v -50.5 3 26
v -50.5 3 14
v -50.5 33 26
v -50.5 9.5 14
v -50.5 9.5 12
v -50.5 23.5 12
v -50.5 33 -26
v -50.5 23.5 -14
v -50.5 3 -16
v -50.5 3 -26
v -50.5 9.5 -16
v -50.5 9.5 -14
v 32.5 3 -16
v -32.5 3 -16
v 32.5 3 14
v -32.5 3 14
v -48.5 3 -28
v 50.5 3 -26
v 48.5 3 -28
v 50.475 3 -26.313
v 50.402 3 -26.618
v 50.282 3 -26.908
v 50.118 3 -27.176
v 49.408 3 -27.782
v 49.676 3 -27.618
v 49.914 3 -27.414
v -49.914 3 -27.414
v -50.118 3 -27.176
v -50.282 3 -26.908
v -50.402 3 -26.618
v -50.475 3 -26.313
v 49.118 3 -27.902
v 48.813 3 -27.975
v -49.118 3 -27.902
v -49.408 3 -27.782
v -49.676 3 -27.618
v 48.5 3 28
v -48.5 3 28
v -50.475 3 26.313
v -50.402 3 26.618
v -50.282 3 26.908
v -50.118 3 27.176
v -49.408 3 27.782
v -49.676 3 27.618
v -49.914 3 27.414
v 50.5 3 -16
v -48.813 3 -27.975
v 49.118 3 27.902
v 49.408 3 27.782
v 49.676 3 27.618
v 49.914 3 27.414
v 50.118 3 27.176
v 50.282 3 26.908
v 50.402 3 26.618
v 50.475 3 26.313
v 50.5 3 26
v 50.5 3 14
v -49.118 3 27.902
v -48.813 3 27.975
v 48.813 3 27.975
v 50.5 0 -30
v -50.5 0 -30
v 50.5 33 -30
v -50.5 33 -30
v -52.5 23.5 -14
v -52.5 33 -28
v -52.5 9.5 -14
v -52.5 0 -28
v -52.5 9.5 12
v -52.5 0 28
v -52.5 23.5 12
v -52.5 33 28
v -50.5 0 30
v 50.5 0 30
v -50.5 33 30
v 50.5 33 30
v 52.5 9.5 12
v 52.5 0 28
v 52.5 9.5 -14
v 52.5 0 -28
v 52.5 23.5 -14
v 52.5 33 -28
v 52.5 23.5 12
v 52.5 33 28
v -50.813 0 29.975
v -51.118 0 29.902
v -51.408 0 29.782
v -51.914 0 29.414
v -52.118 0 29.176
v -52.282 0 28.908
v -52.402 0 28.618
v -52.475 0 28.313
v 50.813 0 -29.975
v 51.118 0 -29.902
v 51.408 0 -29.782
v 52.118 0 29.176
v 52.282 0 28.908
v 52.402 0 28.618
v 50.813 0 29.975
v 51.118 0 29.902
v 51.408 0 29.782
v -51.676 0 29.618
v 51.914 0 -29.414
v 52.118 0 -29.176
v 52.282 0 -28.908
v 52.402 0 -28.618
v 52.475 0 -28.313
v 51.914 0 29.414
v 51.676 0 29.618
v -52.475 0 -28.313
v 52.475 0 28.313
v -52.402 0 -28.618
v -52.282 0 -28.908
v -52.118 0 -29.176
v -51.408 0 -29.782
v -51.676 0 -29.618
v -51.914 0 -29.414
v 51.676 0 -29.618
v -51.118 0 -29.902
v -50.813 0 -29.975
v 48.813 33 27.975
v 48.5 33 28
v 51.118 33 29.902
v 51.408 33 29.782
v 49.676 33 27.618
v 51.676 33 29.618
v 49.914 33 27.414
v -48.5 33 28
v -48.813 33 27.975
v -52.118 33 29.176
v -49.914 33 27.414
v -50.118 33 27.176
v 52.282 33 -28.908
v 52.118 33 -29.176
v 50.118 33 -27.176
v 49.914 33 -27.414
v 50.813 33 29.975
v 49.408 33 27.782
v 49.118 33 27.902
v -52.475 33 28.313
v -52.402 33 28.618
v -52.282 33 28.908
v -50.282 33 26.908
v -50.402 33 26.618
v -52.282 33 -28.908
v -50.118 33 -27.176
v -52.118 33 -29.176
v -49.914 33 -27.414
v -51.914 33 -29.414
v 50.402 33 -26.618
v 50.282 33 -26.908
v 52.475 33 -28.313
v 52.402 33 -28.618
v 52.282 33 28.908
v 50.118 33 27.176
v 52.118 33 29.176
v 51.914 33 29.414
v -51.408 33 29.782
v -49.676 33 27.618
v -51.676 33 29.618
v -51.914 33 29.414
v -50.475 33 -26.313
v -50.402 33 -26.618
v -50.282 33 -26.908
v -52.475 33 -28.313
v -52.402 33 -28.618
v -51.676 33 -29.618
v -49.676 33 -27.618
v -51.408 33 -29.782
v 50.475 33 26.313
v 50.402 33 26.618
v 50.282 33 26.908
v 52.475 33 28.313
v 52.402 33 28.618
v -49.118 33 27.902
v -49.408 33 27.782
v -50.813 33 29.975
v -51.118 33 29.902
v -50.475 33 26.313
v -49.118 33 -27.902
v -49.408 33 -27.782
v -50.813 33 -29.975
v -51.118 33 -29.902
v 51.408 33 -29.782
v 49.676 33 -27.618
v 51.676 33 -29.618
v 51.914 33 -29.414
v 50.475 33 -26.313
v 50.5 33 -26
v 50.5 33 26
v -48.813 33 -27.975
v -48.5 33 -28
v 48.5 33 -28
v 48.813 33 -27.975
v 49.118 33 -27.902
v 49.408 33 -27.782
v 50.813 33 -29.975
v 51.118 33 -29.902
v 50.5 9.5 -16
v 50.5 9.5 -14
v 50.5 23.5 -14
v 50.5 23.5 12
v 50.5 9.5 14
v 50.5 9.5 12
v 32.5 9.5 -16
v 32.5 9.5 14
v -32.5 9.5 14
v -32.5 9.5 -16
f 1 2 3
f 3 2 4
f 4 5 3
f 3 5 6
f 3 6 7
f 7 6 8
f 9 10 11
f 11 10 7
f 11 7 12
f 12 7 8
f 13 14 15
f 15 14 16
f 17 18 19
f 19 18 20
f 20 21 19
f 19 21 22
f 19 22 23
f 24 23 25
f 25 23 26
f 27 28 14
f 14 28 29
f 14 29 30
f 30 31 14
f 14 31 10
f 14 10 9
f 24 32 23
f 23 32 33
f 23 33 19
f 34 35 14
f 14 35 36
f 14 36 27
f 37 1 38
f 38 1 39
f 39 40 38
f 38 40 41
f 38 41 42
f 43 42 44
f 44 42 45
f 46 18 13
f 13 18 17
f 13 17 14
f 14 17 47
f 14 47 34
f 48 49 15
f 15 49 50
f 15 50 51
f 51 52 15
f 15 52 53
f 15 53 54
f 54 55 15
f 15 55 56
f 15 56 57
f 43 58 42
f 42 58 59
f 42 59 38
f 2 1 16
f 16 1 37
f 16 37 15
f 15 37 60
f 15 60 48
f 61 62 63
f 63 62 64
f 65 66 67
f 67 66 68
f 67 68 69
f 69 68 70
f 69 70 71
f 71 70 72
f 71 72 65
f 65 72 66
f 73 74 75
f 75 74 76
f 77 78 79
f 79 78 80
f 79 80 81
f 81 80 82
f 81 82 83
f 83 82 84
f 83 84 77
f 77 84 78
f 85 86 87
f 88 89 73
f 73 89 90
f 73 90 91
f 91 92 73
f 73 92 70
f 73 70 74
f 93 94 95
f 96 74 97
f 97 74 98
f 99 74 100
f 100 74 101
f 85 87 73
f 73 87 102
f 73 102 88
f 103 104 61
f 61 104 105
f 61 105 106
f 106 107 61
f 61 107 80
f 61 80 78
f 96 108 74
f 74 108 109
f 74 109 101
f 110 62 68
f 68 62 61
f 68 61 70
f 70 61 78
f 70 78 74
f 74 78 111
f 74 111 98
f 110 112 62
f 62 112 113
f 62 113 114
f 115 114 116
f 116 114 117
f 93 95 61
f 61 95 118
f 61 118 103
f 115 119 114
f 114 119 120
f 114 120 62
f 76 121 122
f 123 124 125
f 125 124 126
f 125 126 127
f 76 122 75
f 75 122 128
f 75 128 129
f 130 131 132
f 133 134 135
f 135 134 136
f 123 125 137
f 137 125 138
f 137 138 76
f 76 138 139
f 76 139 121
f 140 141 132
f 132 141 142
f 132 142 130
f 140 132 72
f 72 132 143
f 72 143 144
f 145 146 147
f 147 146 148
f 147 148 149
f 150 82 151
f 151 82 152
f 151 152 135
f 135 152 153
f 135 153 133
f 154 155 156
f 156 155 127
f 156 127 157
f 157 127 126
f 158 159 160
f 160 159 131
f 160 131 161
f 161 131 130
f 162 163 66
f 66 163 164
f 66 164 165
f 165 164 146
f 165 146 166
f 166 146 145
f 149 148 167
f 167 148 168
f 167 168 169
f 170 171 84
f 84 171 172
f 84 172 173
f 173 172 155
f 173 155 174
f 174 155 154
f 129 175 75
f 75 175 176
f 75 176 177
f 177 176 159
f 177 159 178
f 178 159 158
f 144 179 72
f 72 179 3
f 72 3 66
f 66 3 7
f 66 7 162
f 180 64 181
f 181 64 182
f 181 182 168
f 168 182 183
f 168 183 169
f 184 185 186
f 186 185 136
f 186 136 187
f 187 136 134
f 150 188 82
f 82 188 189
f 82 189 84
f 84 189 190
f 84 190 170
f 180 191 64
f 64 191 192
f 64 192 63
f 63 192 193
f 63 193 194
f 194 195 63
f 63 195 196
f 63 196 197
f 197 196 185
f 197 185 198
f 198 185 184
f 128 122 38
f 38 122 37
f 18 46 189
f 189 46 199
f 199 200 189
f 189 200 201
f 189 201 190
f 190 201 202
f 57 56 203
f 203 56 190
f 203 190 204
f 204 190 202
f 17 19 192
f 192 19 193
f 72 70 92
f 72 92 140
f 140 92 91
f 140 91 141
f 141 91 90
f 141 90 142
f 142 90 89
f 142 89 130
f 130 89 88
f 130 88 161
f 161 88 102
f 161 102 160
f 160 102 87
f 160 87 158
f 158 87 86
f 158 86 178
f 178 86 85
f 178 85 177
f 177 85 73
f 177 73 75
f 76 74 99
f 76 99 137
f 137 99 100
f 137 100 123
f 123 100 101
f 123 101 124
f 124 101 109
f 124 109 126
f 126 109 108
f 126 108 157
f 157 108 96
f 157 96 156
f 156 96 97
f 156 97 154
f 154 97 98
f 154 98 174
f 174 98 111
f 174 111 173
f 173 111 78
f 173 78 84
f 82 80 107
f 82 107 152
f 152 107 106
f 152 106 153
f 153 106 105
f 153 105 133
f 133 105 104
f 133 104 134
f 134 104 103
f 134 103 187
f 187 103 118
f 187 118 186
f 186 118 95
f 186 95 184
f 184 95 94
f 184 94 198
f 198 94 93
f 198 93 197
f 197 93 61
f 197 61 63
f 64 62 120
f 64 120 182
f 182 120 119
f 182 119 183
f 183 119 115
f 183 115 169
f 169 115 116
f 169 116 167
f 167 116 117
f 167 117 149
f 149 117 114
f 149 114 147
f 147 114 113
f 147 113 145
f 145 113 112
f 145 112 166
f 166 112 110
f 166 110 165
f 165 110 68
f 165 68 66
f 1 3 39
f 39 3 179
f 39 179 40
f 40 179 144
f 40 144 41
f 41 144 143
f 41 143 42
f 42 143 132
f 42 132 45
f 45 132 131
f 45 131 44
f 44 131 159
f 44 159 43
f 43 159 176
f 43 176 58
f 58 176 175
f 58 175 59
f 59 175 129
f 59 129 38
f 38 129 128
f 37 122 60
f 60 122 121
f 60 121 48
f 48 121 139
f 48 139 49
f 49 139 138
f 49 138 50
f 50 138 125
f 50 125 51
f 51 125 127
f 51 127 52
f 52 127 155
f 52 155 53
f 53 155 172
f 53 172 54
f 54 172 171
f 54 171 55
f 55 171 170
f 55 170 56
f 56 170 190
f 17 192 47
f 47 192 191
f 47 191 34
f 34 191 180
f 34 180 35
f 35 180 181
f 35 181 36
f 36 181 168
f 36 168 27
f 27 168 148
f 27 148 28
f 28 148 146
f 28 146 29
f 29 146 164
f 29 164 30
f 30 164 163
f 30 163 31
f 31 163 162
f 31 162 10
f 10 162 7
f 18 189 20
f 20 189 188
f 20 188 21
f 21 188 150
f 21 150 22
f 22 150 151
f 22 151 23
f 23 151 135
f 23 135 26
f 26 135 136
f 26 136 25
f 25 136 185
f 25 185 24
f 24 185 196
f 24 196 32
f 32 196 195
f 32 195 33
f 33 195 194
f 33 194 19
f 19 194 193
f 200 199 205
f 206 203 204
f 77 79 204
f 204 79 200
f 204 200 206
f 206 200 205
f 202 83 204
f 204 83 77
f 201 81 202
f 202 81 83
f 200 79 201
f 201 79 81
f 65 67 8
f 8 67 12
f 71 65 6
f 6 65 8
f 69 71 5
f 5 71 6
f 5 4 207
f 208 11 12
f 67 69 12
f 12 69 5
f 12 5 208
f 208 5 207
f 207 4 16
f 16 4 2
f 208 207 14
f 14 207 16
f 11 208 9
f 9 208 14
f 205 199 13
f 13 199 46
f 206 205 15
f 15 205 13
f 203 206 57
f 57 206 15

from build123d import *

# Parameters (mm, degrees)
BOSS_EXTRU_1_DEPTH      = 3
ESQUISSE3_W             = 105
ESQUISSE3_H             = 60
ESQUISSE3_W_2           = 101
ESQUISSE3_H_2           = 56
BOSS_EXTRU_2_DEPTH      = 30
CONG_2_R                = 2
CONG_4_R                = 2
ESQUISSE4_W             = 26
ESQUISSE4_H             = 14
ENL_V_MAT_EXTRU_2_DEPTH = 162
ESQUISSE6_W             = 18
ESQUISSE6_H             = 30
BOSS_EXTRU_7_DEPTH      = 6.5


with BuildPart() as part:
    # Esquisse2 → Boss.-Extru.1 (new body)
    with BuildSketch(Plane(origin=(0, 0, 0), x_dir=(1, 0, 0), z_dir=(0, 1, 0))):
        Polygon((0, 30), (-52.5, 30), (-52.5, -30), (0, -30), (52.5, -30), (52.5, 30), align=None)
    extrude(amount=BOSS_EXTRU_1_DEPTH)

    # Esquisse3 → Boss.-Extru.2 (add)
    with BuildSketch(Plane(origin=(0, 3, 0), x_dir=(1, 0, 0), z_dir=(0, 1, 0))):
        Rectangle(ESQUISSE3_W, ESQUISSE3_H)
        Rectangle(ESQUISSE3_W_2, ESQUISSE3_H_2, mode=Mode.SUBTRACT)
    extrude(amount=BOSS_EXTRU_2_DEPTH)

    # Congé2
    cong_2_edges = [part.edges().sort_by_distance(p)[0] for p in [
        (52.5, 16.5, -30),
        (52.5, 16.5, 30),
        (-52.5, 16.5, 30),
        (-52.5, 16.5, -30),
    ]]
    fillet(cong_2_edges, radius=CONG_2_R)

    # Congé4
    cong_4_edges = [part.edges().sort_by_distance(p)[0] for p in [
        (-50.5, 18, 28),
        (50.5, 18, 28),
        (50.5, 18, -28),
        (-50.5, 18, -28),
    ]]
    fillet(cong_4_edges, radius=CONG_4_R)

    # Esquisse4 → Enlèv. mat.-Extru.2 (cut)
    with BuildSketch(Plane.ZY.offset(52.5)):
        with Locations((-1, 16.5)):
            Rectangle(ESQUISSE4_W, ESQUISSE4_H)
    extrude(amount=-ENL_V_MAT_EXTRU_2_DEPTH, mode=Mode.SUBTRACT)

    # Esquisse6 → Boss.-Extru.7 (add)
    with BuildSketch(Plane(origin=(0, 3, 0), x_dir=(1, 0, 0), z_dir=(0, 1, 0))):
        with Locations((-41.5, 1)):
            Rectangle(ESQUISSE6_W, ESQUISSE6_H)
    boss_extru_7 = extrude(amount=BOSS_EXTRU_7_DEPTH)

    # Symétrie1: Boss.-Extru.7 across plane
    add(boss_extru_7.mirror(Plane(origin=(0, 0, 0), x_dir=(0, 0, 1), z_dir=(1, 0, 0))))


solid = part.part
